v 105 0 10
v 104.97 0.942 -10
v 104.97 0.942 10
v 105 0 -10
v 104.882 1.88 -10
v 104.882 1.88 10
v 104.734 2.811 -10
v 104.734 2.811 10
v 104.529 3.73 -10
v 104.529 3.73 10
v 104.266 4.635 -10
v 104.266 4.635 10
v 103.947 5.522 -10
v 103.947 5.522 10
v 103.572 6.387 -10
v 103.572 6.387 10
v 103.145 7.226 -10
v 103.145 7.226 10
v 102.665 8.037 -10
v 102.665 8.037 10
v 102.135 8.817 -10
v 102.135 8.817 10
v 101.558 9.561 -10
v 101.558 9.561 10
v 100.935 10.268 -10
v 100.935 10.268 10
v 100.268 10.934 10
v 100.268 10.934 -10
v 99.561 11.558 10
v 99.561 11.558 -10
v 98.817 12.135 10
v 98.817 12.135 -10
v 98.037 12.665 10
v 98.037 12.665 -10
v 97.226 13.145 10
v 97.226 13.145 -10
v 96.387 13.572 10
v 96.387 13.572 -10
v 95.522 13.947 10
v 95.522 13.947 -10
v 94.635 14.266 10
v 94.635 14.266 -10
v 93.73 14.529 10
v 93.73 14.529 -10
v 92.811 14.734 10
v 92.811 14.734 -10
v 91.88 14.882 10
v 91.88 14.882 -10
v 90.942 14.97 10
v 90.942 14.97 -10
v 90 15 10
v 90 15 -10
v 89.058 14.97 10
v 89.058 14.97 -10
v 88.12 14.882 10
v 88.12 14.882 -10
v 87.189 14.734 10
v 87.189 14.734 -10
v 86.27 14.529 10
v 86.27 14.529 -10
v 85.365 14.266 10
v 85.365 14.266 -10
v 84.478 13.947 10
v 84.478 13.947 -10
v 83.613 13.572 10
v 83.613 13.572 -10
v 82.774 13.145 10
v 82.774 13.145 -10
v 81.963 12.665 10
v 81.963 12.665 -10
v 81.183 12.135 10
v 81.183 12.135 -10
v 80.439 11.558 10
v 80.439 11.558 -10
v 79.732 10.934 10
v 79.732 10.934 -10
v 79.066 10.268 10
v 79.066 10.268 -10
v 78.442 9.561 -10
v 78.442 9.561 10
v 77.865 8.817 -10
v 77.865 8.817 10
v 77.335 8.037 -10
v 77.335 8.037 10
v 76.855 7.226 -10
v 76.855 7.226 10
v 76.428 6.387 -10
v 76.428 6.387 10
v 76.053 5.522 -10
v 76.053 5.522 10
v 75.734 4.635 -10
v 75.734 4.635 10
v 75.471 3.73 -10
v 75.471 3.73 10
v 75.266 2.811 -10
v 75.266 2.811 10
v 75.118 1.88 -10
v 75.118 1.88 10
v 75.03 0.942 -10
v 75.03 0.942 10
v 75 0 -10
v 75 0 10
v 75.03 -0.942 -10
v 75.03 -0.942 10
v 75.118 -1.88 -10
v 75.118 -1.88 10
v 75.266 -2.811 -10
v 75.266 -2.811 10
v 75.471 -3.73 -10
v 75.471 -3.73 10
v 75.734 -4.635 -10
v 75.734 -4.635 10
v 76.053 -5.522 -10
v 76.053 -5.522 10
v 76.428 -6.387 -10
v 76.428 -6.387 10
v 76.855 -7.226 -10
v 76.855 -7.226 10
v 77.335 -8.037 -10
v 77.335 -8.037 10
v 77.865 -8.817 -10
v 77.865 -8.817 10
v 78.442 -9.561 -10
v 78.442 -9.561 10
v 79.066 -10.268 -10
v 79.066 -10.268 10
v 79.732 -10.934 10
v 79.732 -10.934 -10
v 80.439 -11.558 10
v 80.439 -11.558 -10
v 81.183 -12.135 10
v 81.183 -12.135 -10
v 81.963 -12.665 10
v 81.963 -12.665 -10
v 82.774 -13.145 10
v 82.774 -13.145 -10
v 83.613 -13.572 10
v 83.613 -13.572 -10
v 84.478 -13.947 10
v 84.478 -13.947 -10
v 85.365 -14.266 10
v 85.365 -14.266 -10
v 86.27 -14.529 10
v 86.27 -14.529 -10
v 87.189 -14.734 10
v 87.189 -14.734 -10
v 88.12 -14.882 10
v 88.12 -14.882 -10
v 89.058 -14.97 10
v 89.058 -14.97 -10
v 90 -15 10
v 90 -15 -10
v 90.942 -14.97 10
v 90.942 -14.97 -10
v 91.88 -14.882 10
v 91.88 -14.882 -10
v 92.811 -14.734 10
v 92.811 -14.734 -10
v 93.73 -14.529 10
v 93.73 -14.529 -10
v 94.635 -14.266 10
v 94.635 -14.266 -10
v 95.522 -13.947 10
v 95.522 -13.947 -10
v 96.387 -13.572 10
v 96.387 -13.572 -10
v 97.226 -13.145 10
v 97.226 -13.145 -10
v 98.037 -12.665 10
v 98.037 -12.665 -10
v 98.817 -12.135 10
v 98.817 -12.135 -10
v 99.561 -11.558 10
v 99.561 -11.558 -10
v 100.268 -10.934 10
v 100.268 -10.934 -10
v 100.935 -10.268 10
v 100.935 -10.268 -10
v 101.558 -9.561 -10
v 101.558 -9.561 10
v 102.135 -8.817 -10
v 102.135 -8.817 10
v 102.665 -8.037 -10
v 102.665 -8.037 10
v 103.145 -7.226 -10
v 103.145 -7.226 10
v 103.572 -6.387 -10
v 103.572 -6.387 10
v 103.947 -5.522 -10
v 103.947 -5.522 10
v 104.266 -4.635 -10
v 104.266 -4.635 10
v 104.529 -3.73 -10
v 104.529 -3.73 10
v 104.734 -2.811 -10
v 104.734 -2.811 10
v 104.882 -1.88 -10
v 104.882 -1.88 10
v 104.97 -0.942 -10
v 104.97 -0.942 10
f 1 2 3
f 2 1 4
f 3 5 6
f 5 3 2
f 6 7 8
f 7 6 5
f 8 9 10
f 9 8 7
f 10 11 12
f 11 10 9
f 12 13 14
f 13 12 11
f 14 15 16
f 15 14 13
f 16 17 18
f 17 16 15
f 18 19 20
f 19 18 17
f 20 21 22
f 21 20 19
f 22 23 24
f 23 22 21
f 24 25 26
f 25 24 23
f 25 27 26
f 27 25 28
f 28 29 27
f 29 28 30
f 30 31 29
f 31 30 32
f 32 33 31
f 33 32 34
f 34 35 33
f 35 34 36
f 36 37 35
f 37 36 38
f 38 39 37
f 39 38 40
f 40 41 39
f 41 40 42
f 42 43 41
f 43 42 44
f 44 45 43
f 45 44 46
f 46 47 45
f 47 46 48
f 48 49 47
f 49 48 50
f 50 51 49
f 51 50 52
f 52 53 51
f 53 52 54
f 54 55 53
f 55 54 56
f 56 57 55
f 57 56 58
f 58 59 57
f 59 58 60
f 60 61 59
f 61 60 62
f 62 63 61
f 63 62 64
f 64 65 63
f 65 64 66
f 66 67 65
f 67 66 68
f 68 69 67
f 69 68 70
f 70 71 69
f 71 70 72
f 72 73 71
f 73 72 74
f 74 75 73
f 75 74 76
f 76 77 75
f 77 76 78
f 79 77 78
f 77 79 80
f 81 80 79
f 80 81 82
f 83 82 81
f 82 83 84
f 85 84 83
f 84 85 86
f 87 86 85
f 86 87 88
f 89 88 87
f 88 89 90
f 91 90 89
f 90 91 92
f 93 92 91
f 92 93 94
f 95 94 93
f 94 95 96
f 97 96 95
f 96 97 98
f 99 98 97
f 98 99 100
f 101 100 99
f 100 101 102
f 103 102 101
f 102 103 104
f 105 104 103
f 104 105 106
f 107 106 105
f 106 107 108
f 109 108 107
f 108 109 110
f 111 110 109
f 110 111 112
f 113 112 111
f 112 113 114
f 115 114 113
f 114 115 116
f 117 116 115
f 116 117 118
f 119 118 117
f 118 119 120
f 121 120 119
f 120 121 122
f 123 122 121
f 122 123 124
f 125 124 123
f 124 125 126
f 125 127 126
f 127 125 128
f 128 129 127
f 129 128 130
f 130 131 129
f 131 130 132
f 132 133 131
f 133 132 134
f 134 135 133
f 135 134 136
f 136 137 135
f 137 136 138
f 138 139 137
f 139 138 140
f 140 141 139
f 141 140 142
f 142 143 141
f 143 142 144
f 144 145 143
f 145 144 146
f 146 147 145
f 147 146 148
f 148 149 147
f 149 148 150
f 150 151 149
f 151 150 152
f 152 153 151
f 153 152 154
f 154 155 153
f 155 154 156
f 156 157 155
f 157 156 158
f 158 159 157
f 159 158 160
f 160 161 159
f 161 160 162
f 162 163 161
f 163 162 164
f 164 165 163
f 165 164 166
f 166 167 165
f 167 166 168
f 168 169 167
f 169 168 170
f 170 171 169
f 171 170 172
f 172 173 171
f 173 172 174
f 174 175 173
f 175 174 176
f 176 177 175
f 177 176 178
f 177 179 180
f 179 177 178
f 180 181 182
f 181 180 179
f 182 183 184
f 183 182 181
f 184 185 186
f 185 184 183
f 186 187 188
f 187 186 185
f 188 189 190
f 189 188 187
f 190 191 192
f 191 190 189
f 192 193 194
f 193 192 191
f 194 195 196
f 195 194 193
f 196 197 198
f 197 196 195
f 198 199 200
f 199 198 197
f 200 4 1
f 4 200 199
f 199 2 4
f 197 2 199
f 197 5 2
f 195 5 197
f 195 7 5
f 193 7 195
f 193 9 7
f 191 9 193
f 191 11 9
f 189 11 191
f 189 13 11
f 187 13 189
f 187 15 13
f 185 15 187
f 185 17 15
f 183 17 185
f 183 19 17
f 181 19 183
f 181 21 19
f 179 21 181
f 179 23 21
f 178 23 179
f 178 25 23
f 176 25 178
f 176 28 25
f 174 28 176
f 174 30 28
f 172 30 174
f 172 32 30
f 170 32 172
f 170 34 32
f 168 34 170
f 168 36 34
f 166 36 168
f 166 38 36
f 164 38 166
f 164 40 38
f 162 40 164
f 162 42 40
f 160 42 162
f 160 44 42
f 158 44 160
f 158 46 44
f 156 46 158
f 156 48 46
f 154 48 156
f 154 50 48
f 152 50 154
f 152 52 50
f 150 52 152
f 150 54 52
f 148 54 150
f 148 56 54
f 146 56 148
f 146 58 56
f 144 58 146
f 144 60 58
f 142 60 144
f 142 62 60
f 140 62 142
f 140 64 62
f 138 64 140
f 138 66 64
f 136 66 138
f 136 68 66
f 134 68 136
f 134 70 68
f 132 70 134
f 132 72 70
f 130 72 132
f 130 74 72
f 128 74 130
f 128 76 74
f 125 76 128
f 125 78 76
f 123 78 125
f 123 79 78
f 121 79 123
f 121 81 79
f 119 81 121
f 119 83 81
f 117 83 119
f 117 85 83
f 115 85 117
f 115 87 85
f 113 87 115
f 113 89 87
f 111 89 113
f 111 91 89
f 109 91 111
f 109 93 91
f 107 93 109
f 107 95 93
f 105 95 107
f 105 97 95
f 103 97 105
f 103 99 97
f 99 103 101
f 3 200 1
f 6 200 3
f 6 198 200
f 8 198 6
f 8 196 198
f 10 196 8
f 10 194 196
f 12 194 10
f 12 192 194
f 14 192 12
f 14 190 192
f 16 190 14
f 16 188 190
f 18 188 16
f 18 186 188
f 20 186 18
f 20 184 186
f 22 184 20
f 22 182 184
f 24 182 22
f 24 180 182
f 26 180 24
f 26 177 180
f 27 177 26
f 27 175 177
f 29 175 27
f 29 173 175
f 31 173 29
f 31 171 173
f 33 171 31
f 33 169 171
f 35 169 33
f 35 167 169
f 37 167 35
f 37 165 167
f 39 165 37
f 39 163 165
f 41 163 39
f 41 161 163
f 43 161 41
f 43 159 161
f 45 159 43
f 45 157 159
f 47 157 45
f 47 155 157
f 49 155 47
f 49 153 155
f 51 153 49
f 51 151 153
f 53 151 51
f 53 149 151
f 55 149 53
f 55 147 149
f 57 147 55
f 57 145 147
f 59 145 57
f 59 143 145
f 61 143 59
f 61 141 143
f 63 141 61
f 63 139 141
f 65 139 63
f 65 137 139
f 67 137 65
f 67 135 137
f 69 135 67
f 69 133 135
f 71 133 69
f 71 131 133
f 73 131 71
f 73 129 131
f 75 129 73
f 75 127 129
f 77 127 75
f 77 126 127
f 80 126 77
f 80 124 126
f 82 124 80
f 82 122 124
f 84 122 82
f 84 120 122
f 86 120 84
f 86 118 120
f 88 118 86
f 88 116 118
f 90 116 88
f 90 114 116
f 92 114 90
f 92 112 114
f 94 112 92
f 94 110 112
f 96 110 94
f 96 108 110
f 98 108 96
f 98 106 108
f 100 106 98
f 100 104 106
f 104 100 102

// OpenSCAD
$fn = 100;

translate([90, 0, 0])
rotate([0, 0, 0])
cylinder(20, 15, 15, true);
